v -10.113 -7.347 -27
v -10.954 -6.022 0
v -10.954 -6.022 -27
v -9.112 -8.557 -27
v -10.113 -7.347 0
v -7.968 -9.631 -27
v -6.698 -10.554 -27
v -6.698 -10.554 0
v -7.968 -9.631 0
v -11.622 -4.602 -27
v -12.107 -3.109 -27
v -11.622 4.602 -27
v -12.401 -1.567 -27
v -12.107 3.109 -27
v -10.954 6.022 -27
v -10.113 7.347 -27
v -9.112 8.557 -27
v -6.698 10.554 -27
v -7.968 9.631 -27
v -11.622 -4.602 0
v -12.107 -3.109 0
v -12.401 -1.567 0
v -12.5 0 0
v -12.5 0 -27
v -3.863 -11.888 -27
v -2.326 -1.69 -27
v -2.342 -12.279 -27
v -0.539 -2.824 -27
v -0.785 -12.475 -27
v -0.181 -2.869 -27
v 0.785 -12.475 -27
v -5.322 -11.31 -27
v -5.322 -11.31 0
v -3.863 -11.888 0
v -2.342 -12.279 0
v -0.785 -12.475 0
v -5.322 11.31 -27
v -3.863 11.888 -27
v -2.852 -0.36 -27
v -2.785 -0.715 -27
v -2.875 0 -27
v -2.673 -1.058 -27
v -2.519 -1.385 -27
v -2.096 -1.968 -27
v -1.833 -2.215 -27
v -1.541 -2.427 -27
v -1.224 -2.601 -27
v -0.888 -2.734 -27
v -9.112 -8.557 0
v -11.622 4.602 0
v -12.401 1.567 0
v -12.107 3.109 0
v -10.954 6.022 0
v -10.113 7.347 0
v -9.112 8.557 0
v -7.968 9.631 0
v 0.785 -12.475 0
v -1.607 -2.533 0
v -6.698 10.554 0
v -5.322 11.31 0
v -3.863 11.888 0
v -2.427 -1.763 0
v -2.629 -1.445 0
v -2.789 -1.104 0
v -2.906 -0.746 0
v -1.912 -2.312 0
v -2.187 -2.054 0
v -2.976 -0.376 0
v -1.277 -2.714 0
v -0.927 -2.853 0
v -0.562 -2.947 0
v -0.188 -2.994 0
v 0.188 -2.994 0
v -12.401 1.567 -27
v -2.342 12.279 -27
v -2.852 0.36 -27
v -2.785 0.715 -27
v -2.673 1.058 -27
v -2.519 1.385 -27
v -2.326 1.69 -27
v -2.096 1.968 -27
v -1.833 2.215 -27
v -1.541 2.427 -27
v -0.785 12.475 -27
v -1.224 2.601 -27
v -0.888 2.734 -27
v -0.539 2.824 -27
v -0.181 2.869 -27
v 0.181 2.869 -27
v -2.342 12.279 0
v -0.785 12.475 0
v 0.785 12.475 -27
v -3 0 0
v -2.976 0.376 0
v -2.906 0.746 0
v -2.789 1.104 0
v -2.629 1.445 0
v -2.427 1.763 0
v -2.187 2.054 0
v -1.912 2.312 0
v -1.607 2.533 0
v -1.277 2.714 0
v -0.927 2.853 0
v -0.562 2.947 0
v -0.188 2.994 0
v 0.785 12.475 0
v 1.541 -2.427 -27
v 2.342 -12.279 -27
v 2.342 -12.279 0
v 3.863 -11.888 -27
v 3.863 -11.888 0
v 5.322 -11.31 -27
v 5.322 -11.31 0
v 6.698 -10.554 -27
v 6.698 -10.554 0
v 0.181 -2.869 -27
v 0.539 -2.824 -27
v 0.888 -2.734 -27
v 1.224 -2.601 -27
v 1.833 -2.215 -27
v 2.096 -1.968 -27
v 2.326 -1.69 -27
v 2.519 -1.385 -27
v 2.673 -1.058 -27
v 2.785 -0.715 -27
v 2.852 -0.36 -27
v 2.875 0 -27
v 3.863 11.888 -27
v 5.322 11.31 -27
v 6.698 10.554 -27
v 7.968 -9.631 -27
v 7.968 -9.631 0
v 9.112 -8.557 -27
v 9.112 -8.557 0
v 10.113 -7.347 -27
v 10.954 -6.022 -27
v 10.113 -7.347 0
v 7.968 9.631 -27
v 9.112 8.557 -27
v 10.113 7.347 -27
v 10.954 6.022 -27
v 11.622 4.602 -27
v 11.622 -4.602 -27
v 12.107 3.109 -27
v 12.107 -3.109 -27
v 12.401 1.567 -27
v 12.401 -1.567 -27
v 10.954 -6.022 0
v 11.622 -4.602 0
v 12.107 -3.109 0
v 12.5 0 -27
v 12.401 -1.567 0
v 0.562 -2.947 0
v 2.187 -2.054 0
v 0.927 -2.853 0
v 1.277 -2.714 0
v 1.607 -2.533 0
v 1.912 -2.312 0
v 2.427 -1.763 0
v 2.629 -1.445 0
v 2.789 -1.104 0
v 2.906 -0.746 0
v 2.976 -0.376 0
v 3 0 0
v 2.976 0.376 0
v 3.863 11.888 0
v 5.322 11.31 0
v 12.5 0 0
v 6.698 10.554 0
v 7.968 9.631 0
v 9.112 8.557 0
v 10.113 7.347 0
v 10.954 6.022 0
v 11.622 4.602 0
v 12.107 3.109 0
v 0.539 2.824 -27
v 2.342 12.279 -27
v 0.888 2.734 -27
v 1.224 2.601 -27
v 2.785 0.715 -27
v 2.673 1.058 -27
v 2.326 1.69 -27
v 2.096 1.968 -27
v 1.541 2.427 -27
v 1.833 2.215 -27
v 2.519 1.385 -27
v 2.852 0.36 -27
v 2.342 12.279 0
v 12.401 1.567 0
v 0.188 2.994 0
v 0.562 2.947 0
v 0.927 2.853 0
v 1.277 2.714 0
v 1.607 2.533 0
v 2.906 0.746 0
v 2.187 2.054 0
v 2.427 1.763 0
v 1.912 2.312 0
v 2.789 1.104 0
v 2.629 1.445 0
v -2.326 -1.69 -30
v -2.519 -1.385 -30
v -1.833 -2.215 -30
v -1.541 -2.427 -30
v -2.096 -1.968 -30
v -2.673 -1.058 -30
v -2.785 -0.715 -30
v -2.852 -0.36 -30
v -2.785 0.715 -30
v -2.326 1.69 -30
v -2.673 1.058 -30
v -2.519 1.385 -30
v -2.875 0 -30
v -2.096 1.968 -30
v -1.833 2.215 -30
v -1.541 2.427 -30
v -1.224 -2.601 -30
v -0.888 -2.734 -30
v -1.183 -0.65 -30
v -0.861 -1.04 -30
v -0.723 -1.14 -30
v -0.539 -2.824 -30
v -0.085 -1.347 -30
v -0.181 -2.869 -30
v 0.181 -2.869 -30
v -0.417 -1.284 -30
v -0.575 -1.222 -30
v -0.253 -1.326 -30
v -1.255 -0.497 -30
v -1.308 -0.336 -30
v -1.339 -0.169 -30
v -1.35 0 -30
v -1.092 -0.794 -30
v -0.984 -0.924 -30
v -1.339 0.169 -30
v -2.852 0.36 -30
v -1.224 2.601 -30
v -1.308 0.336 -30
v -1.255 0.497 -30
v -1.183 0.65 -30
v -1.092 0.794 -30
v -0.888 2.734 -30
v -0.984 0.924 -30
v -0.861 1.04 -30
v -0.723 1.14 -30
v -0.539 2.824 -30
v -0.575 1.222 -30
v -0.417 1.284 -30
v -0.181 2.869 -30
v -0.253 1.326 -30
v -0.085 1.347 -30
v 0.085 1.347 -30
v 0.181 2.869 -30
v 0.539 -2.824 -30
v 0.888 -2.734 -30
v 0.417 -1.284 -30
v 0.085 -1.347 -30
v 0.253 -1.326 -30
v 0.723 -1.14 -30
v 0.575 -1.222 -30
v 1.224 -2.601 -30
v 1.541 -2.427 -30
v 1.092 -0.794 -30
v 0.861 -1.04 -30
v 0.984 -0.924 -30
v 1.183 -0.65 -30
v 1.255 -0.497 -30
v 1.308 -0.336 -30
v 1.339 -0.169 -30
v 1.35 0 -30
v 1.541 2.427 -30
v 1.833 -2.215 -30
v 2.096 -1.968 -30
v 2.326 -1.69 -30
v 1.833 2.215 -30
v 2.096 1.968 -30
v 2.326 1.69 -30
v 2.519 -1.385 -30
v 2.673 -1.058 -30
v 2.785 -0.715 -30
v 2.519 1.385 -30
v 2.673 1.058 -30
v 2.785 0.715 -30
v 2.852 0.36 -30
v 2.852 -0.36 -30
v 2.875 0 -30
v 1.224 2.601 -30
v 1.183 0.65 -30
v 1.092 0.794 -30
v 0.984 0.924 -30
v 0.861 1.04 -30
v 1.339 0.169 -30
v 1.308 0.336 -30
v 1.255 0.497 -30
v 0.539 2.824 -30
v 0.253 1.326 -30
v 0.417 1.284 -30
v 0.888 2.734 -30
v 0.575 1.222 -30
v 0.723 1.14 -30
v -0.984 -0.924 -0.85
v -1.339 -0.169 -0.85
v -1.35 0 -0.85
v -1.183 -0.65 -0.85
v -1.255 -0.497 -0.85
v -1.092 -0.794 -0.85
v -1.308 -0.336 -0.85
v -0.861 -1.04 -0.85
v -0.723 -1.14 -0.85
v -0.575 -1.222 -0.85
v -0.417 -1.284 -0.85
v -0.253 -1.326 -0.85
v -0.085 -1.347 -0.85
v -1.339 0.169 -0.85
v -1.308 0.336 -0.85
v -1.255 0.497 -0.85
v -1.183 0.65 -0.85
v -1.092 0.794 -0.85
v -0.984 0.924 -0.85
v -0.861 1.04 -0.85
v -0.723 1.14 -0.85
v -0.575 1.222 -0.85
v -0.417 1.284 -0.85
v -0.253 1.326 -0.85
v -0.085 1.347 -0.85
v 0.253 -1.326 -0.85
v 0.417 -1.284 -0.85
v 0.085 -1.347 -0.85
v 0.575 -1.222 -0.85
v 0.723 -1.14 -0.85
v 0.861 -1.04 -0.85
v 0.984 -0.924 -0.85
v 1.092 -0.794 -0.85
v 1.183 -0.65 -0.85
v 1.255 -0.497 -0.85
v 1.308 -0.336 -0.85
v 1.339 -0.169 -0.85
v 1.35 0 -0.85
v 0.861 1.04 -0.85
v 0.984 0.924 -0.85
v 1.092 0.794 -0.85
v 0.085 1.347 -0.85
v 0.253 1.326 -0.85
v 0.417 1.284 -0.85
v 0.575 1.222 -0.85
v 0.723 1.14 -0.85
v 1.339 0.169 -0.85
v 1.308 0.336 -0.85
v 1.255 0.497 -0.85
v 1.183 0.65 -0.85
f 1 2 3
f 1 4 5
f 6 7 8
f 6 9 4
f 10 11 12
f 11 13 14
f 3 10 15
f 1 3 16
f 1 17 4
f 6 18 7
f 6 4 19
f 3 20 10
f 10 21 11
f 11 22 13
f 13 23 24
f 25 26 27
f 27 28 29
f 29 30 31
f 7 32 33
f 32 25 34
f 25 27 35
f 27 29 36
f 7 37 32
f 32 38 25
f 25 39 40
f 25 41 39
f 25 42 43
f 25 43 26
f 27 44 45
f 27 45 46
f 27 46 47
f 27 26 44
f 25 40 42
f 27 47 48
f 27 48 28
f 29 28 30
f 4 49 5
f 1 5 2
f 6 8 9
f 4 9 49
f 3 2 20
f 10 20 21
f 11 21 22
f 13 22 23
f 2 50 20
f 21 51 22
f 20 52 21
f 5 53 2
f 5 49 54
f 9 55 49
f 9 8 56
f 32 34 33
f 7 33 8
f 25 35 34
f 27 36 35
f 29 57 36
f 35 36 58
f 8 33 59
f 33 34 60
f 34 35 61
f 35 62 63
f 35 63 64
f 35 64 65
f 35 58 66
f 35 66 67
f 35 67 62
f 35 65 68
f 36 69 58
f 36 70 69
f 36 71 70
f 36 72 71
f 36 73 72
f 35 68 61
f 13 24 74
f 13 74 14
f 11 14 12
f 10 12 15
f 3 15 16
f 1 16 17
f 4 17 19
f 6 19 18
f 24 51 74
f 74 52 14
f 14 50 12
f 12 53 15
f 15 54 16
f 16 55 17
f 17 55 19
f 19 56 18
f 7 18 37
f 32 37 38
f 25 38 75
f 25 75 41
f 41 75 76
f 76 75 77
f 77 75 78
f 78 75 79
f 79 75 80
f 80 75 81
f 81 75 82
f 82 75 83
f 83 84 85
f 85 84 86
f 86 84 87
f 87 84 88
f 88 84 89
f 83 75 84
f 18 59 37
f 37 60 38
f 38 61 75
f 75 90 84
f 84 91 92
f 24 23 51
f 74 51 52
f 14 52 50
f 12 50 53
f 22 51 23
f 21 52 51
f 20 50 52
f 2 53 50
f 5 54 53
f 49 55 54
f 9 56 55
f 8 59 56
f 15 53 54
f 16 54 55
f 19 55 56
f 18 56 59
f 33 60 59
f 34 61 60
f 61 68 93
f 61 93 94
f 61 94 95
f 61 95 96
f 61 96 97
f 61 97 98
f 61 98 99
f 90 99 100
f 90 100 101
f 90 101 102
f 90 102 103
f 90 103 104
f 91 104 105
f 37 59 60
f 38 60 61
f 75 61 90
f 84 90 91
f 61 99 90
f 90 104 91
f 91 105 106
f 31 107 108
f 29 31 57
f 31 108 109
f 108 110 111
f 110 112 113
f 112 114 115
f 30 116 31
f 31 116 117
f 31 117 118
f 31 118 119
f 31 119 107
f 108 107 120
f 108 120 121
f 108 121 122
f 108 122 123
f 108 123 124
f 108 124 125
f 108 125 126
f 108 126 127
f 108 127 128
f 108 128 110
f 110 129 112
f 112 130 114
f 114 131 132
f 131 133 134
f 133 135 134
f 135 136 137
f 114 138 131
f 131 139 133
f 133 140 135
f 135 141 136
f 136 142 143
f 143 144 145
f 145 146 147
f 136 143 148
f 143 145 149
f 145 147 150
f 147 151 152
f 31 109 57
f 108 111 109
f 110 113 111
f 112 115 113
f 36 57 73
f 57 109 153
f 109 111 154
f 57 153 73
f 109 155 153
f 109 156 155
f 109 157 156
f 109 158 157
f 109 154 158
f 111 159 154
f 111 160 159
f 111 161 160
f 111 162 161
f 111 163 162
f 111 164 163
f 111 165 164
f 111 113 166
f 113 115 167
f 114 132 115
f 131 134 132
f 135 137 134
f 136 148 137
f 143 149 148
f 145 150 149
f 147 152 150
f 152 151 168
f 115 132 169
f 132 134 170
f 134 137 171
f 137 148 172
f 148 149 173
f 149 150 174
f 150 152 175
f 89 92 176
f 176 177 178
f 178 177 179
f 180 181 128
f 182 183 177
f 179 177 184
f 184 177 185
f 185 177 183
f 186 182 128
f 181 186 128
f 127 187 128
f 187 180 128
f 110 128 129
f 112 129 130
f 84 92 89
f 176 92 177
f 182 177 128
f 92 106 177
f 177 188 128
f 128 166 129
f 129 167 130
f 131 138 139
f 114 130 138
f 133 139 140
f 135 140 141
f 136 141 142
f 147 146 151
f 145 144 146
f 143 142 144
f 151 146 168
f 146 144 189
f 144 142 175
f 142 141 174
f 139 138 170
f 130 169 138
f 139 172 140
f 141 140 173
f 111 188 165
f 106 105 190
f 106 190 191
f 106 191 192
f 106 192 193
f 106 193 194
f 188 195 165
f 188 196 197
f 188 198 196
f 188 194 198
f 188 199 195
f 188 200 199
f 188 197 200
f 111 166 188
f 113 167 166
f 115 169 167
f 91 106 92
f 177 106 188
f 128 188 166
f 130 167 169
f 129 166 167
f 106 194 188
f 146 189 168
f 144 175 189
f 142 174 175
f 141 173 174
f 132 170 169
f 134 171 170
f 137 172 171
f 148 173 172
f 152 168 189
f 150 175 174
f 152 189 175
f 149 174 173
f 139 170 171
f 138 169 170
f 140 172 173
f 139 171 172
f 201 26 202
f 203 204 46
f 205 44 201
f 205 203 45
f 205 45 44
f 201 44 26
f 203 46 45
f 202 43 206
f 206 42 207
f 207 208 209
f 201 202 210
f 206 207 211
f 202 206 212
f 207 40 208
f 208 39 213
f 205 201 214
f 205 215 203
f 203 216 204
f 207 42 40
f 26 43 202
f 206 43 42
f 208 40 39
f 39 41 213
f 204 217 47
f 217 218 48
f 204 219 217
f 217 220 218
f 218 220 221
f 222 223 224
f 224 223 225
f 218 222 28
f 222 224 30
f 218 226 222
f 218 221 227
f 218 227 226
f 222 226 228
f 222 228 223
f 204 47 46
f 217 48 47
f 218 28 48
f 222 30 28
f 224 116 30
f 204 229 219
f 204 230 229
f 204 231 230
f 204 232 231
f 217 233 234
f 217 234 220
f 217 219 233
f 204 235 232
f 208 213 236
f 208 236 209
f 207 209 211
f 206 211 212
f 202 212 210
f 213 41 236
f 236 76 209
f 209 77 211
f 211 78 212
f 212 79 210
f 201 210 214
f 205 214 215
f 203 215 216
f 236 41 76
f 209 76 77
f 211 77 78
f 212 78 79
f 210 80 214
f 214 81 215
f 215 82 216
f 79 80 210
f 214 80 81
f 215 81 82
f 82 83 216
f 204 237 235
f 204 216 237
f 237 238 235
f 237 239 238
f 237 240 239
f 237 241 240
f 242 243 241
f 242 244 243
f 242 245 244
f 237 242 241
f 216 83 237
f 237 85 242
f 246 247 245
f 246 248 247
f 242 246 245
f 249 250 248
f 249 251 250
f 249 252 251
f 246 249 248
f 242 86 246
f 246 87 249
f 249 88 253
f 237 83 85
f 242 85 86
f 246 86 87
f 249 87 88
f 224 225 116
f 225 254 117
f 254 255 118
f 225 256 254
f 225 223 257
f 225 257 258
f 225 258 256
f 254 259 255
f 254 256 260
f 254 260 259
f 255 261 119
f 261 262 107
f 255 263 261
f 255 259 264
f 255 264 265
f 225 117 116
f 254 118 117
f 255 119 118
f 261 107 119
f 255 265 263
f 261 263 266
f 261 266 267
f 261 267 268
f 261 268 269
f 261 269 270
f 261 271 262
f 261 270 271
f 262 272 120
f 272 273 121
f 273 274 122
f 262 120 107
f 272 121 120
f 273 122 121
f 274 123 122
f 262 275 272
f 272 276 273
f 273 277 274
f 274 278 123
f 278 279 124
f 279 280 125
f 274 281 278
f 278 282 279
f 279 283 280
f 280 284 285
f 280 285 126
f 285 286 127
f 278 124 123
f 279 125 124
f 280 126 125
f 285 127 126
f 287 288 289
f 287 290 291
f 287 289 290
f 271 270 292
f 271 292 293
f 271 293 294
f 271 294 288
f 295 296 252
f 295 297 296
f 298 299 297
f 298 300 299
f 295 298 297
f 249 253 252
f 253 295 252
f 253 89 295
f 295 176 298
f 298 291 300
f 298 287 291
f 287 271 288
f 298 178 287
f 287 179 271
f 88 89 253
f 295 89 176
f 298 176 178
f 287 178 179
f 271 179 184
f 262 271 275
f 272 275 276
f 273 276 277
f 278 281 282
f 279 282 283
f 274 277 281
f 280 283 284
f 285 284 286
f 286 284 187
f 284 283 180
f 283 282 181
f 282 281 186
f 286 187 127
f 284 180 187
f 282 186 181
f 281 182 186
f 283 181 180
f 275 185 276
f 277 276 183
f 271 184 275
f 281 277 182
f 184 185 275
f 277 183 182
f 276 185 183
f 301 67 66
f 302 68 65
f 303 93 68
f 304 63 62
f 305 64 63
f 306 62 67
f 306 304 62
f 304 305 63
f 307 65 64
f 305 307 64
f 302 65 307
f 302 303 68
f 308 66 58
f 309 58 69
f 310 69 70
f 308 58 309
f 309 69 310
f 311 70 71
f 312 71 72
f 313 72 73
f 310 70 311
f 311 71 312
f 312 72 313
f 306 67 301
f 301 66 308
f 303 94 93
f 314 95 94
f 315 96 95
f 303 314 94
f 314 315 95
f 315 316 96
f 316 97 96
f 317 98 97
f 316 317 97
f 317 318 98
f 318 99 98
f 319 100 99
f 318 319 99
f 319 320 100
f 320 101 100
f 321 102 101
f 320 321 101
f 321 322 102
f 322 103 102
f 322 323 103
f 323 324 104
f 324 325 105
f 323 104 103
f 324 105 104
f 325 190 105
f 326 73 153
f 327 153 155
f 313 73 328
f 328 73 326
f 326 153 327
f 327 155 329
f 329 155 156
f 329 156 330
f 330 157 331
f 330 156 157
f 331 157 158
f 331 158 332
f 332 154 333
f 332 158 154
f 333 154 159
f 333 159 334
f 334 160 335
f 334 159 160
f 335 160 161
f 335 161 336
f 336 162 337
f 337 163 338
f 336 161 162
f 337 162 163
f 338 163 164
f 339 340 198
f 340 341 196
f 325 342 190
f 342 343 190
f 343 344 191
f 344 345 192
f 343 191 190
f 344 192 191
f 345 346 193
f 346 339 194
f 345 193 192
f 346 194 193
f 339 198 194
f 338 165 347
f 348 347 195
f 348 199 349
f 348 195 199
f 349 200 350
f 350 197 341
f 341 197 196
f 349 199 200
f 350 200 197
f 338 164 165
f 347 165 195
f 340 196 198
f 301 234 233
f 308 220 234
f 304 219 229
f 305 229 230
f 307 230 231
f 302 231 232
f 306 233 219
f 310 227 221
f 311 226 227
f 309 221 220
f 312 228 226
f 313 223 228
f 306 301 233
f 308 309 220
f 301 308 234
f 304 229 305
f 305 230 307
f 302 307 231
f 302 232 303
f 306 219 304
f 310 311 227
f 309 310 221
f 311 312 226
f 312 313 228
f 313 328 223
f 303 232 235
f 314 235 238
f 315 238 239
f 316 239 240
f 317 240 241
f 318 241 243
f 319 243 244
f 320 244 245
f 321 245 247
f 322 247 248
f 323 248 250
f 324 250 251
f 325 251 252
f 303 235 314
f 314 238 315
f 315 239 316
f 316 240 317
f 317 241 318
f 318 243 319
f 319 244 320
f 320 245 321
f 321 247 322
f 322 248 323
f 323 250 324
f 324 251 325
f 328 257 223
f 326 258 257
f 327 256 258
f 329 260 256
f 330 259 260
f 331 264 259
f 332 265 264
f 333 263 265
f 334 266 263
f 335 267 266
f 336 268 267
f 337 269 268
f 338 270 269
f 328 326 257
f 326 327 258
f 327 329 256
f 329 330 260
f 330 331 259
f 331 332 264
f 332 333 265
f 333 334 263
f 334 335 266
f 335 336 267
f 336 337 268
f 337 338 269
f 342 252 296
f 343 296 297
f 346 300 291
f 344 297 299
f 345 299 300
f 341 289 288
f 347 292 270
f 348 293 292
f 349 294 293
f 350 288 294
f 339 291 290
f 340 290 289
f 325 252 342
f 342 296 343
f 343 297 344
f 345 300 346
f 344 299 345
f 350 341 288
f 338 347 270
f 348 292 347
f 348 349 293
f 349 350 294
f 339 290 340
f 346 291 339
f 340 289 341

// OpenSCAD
$fn = 50;


difference() {
	union() {
		translate(v = [0, 0, -27.0000000000]) {
			cylinder(h = 27, r = 12.5000000000);
		}
		#translate(v = [0, 0, -30.0000000000]) {
			cylinder(h = 30, r = 2.8750000000);
		}
	}
	union() {
		translate(v = [0, 0, 0]) {
			rotate(a = [0, 0, 0]) {
				difference() {
					union() {
						translate(v = [0, 0, -30.0000000000]) {
							cylinder(h = 30, r = 1.0000000000);
						}
						translate(v = [0, 0, -0.8500000000]) {
							cylinder(h = 0.8500000000, r1 = 1.3500000000, r2 = 3.0000000000);
						}
						translate(v = [0, 0, -30.0000000000]) {
							cylinder(h = 30, r = 1.3500000000);
						}
						translate(v = [0, 0, -30.0000000000]) {
							cylinder(h = 30, r = 1.0000000000);
						}
					}
					union();
				}
			}
		}
	}
}
